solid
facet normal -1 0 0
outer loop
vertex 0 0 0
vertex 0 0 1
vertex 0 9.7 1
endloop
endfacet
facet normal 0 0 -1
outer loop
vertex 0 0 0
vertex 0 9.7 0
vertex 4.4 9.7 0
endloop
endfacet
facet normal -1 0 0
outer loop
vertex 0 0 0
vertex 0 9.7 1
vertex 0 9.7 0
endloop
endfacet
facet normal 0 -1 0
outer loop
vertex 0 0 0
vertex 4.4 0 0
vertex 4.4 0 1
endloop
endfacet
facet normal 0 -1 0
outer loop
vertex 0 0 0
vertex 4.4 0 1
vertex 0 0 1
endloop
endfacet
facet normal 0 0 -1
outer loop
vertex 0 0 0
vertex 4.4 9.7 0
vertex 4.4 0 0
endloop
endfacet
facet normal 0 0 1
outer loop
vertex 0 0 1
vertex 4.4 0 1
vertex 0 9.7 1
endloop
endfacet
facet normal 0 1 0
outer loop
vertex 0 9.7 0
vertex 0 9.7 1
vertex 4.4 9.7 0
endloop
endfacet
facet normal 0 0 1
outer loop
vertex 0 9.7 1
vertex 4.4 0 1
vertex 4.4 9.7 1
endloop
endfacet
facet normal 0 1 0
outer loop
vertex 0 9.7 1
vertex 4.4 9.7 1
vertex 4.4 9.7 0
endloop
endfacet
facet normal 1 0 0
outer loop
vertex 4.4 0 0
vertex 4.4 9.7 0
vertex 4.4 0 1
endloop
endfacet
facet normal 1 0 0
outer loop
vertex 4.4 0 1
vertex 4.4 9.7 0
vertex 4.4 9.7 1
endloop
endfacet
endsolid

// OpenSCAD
/* Warning, this is a very basic generator with a lot of approximation 
input data : [TSSOP, NRB, 4.4x9.7x1mm, 28, , A, C04-21347A]
generated by com.zoubworld.electronics.cad.model3d.Basic
Date : Sun Feb 15 10:50:49 CET 2026
*/

//body
color("black")
translate([0,0,0])
cube([4.4,9.7,1.0], center=false);
